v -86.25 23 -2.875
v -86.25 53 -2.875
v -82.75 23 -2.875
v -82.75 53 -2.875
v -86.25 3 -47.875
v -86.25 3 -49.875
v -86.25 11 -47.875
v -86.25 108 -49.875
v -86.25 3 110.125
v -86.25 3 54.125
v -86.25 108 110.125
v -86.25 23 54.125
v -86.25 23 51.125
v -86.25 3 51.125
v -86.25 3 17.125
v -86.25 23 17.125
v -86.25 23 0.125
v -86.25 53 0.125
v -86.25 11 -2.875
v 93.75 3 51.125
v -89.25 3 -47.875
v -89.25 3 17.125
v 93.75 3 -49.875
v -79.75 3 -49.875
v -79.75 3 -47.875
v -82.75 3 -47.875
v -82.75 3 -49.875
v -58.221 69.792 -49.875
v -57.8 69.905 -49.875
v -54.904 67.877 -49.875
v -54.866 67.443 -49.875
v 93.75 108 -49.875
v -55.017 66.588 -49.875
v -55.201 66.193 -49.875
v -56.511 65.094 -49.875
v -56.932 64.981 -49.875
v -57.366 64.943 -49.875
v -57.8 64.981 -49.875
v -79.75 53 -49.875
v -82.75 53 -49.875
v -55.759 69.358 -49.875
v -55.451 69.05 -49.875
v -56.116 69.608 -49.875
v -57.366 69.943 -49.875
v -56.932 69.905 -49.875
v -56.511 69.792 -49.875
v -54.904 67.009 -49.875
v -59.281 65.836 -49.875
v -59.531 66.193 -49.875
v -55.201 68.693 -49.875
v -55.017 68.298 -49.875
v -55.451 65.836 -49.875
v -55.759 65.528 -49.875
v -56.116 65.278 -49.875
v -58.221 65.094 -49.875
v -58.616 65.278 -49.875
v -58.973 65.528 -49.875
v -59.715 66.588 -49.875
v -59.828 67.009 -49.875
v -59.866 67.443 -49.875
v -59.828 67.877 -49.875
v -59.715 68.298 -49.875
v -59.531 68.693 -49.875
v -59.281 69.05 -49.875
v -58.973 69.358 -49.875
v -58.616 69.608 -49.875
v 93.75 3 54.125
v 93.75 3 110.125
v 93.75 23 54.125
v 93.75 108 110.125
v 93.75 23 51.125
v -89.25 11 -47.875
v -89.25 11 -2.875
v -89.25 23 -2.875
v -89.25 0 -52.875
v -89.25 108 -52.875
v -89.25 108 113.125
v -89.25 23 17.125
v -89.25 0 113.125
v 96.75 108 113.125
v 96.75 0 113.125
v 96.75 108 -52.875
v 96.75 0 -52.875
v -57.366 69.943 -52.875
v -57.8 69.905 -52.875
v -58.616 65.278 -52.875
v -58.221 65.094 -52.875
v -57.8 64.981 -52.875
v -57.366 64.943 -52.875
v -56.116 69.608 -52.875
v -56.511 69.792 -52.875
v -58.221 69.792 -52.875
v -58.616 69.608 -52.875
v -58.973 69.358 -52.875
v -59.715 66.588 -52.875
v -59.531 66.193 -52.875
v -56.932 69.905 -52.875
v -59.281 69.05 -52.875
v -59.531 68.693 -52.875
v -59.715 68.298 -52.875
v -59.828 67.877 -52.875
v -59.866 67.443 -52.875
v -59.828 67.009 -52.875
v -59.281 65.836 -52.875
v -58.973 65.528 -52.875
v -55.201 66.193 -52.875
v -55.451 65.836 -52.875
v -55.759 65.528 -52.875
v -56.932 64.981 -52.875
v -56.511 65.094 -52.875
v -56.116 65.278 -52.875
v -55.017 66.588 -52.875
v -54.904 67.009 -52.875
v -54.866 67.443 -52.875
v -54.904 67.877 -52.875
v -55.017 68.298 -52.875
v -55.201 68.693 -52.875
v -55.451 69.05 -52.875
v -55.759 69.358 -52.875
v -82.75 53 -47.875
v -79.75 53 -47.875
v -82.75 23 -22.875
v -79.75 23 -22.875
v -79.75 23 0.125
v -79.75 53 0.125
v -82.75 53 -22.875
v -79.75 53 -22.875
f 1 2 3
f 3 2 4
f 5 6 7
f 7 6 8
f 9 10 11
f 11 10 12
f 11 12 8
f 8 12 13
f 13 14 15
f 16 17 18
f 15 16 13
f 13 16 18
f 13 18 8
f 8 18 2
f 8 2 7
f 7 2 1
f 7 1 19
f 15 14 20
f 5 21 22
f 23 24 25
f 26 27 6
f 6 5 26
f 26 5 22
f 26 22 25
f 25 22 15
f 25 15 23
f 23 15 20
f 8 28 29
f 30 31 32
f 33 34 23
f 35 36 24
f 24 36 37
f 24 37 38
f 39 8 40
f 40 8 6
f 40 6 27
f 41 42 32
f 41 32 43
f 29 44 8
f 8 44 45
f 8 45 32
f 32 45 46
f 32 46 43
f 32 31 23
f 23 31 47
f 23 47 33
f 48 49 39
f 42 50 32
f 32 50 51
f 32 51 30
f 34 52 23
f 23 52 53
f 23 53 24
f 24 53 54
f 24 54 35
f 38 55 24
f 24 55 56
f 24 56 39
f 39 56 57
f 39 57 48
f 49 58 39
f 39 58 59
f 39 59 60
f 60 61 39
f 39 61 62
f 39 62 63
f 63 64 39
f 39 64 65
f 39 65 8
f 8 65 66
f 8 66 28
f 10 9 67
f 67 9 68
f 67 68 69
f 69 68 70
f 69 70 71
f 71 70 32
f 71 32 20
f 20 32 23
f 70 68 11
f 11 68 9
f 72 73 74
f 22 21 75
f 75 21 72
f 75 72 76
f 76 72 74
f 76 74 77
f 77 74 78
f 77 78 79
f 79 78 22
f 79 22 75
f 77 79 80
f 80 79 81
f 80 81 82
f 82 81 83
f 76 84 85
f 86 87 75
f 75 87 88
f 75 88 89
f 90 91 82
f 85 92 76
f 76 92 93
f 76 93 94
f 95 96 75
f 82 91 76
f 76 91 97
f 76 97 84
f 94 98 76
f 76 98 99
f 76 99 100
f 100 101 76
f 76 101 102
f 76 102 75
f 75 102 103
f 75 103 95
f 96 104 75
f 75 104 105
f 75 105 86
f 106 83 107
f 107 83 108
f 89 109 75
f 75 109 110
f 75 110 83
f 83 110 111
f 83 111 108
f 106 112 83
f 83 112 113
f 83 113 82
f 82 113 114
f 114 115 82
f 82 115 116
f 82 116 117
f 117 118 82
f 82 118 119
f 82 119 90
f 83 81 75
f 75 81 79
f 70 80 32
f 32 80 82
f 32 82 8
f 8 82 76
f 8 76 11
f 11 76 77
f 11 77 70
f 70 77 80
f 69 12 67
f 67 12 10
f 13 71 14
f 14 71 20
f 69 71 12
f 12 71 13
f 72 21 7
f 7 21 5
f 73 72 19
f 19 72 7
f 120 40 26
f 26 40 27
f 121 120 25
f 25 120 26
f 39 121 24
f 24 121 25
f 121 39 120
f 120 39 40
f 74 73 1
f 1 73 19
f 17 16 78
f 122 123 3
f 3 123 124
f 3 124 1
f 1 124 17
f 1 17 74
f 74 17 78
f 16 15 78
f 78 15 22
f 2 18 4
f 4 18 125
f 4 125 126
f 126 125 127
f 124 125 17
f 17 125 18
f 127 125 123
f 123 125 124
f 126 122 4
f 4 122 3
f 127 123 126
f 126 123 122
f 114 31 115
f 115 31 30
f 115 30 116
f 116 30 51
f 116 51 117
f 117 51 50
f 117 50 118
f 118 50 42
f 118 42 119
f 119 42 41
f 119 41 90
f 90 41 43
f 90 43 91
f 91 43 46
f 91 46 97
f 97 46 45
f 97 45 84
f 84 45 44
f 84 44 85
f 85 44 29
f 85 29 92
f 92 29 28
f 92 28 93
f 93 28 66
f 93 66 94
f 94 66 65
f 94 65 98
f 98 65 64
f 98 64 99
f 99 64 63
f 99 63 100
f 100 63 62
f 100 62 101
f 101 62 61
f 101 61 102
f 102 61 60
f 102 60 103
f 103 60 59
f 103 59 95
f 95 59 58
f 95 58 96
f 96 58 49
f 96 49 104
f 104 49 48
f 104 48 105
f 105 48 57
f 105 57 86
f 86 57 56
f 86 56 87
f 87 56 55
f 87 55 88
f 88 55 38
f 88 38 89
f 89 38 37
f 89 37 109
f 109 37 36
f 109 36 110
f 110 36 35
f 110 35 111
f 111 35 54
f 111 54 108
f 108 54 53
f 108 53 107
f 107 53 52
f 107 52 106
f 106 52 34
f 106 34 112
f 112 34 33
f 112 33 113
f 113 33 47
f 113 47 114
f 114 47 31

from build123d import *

# Parameters (mm, degrees)
SKETCH1_W            = 186
SKETCH1_H            = 166
BOSS_EXTRUDE6_DEPTH  = 3
SKETCH9_W            = 183
SKETCH9_H            = 3
BOSS_EXTRUDE7_DEPTH  = 105
SKETCH8_W            = 3
SKETCH8_H            = 163
BOSS_EXTRUDE8_DEPTH  = 105
SKETCH7_W            = 186
SKETCH7_H            = 3
BOSS_EXTRUDE9_DEPTH  = 105
SKETCH11_W           = 3
SKETCH11_H           = 160
BOSS_EXTRUDE10_DEPTH = 105
SKETCH12_W           = 180
SKETCH12_H           = 3
BOSS_EXTRUDE11_DEPTH = 20
SKETCH13_W           = 45
SKETCH13_H           = 8
CUT_EXTRUDE5_DEPTH   = 3
SKETCH20_W           = 3
SKETCH20_H           = 2
BOSS_EXTRUDE12_DEPTH = 50
SKETCH18_W           = 20
SKETCH18_H           = 20
CUT_EXTRUDE6_DEPTH   = 3
SKETCH22_W           = 3
SKETCH22_H           = 30
BOSS_EXTRUDE13_DEPTH = 6.5
SKETCH23_W           = 3
SKETCH23_H           = 30
BOSS_EXTRUDE15_DEPTH = 20
SKETCH24_R           = 2.5
CUT_EXTRUDE8_DEPTH   = 10


with BuildPart() as part:
    # Sketch1 → Boss-Extrude6 (new body)
    with BuildSketch(Plane(origin=(0, 0, 0), x_dir=(1, 0, 0), z_dir=(0, 1, 0))):
        with Locations((3.75, -30.125)):
            Rectangle(SKETCH1_W, SKETCH1_H)
    extrude(amount=BOSS_EXTRUDE6_DEPTH)

    # Sketch9 → Boss-Extrude7 (add)
    with BuildSketch(Plane(origin=(0, 3, 0), x_dir=(1, 0, 0), z_dir=(0, 1, 0))):
        with Locations((2.25, -111.625)):
            Rectangle(SKETCH9_W, SKETCH9_H)
    extrude(amount=BOSS_EXTRUDE7_DEPTH)

    # Sketch8 → Boss-Extrude8 (add)
    with BuildSketch(Plane(origin=(0, 3, 0), x_dir=(1, 0, 0), z_dir=(0, 1, 0))):
        with Locations((95.25, -31.625)):
            Rectangle(SKETCH8_W, SKETCH8_H)
    extrude(amount=BOSS_EXTRUDE8_DEPTH)

    # Sketch7 → Boss-Extrude9 (add)
    with BuildSketch(Plane(origin=(0, 3, 0), x_dir=(1, 0, 0), z_dir=(0, 1, 0))):
        with Locations((3.75, 51.375)):
            Rectangle(SKETCH7_W, SKETCH7_H)
    extrude(amount=BOSS_EXTRUDE9_DEPTH)

    # Sketch11 → Boss-Extrude10 (add)
    with BuildSketch(Plane(origin=(0, 3, 0), x_dir=(1, 0, 0), z_dir=(0, 1, 0))):
        with Locations((-87.75, -30.125)):
            Rectangle(SKETCH11_W, SKETCH11_H)
    extrude(amount=BOSS_EXTRUDE10_DEPTH)

    # Sketch12 → Boss-Extrude11 (add)
    with BuildSketch(Plane(origin=(0, 3, 0), x_dir=(1, 0, 0), z_dir=(0, 1, 0))):
        with Locations((3.75, -52.625)):
            Rectangle(SKETCH12_W, SKETCH12_H)
    extrude(amount=BOSS_EXTRUDE11_DEPTH)

    # Sketch13 → Cut-Extrude5 (cut)
    with BuildSketch(Plane(origin=(-86.25, 0, 0), x_dir=(0, 0, -1), z_dir=(1, 0, 0))):
        with Locations((25.375, 7)):
            Rectangle(SKETCH13_W, SKETCH13_H)
    extrude(amount=-CUT_EXTRUDE5_DEPTH, mode=Mode.SUBTRACT)

    # Sketch20 → Boss-Extrude12 (add)
    with BuildSketch(Plane(origin=(0, 3, 0), x_dir=(1, 0, 0), z_dir=(0, 1, 0))):
        with Locations((-81.25, 48.875)):
            Rectangle(SKETCH20_W, SKETCH20_H)
    extrude(amount=BOSS_EXTRUDE12_DEPTH)

    # Sketch18 → Cut-Extrude6 (cut)
    with BuildSketch(Plane.ZY.offset(89.25)):
        with Locations((7.125, 13)):
            Rectangle(SKETCH18_W, SKETCH18_H)
    extrude(amount=-CUT_EXTRUDE6_DEPTH, mode=Mode.SUBTRACT)

    # Sketch22 → Boss-Extrude13 (add)
    with BuildSketch(Plane(origin=(-86.25, 0, 0), x_dir=(0, 0, -1), z_dir=(1, 0, 0))):
        with Locations((1.375, 38)):
            Rectangle(SKETCH22_W, SKETCH22_H)
    extrude(amount=BOSS_EXTRUDE13_DEPTH)

    # Sketch23 → Boss-Extrude15 (add)
    with BuildSketch(Plane(origin=(0, 0, -2.875), x_dir=(-1, 0, 0), z_dir=(0, 0, -1))):
        with Locations((81.25, 38)):
            Rectangle(SKETCH23_W, SKETCH23_H)
    extrude(amount=BOSS_EXTRUDE15_DEPTH)

    # Sketch24 → Cut-Extrude8 (cut)
    with BuildSketch(Plane.XY.offset(-49.875)):
        with Locations((-57.365874662, 67.44295955)):
            Circle(SKETCH24_R)
    extrude(amount=-CUT_EXTRUDE8_DEPTH, mode=Mode.SUBTRACT)


solid = part.part
